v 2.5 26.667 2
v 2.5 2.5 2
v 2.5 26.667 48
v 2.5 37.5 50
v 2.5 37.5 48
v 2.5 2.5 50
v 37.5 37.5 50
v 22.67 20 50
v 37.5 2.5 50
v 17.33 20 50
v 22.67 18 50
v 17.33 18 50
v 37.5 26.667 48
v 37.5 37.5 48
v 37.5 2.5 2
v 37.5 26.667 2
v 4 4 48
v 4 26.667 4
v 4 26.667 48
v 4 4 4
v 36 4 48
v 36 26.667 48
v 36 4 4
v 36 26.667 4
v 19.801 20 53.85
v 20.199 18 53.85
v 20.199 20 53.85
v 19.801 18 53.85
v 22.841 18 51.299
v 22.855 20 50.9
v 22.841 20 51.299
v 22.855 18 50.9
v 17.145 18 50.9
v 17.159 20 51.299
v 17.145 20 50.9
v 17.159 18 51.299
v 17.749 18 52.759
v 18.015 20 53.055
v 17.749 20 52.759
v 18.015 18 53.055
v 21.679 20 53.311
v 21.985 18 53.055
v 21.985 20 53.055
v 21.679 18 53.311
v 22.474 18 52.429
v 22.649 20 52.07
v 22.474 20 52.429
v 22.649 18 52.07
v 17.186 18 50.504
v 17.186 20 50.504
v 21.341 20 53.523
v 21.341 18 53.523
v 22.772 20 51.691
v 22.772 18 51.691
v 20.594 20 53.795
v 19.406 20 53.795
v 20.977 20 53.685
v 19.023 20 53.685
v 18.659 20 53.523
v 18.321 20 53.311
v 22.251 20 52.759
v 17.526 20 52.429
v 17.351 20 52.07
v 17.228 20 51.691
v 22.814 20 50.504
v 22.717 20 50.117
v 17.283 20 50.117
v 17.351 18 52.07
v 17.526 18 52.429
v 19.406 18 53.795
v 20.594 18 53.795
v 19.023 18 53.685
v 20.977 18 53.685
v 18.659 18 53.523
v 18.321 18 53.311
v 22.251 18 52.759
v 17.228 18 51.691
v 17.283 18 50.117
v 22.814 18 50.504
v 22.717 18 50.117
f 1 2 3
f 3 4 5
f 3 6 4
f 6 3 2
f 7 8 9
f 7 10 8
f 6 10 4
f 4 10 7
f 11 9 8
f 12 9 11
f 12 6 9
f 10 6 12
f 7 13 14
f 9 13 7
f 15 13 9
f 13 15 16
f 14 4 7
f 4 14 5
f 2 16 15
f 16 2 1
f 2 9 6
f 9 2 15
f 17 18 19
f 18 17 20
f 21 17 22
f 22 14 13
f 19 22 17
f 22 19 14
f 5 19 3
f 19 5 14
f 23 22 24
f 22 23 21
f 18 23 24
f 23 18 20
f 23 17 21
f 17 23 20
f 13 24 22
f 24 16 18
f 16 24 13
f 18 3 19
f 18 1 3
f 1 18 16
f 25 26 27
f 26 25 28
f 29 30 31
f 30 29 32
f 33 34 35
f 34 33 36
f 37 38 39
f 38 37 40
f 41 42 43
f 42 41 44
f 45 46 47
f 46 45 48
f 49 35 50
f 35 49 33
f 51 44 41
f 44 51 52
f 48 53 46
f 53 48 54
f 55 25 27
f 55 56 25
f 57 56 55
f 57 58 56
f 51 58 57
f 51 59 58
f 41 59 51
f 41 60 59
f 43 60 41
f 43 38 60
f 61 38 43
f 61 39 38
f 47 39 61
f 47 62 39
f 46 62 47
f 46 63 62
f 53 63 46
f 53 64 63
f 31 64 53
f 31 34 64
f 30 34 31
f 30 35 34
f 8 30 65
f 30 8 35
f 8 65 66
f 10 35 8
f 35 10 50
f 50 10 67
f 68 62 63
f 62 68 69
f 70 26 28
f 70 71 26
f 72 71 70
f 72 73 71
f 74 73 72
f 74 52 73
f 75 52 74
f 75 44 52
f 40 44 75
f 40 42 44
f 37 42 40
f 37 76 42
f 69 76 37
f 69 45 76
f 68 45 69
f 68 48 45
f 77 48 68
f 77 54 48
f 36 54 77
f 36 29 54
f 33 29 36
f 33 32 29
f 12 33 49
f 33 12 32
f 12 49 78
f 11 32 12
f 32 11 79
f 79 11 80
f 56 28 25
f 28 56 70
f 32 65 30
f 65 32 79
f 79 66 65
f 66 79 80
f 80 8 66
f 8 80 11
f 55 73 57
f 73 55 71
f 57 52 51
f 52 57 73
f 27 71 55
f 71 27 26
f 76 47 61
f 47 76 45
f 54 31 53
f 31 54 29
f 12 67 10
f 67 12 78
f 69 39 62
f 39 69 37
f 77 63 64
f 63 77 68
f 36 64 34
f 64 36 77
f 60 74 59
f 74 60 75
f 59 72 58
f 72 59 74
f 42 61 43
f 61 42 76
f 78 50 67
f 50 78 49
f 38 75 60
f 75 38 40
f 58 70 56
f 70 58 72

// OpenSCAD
$fa = 1;
$fs = 0.4;

height = 50;
Xsize = 40;
Ysize = 40;
open = 0;

module box() {
    difference() {
        cube([Xsize, Ysize, height - 7]);
        
        translate([2, 2, 2])
            cube([Xsize - 4, Ysize - 4, height - 7]);
    }

    difference() {
        translate([1, 1, height - 7])
            cube([Xsize - 2, Ysize - 2, 7]);
        
        translate([2, 2, height - 8])
            cube([Xsize - 4, Ysize - 4, 9]);
    }
}

/*
difference(){
    box();

    translate([-10, Ysize / 3 * 2, 0])
        cube([Xsize * 2, Ysize, height]);
}
*/

difference(){
    translate([2.5, 2.5, 2])
        cube([Xsize - 5, Ysize - 5, height - 2]);
    
    translate([4, 4, 4])
        cube([Xsize - 8, Ysize - 7, height - 6]);

    translate([-10, Ysize / 3 * 2, 0])
        cube([Xsize * 2, Ysize, height - 2]);

    if(open)
        translate([Xsize / 2, Ysize + Ysize / 4, height - 2])
            rotate([0, 0, 0])
                cylinder(2, Xsize / 2, Xsize / 2);
}

translate([Xsize / 2, Ysize / 2, height + 1])
    rotate([90, 90, 0])
        cylinder(2, Xsize / 14, Xsize / 14);
